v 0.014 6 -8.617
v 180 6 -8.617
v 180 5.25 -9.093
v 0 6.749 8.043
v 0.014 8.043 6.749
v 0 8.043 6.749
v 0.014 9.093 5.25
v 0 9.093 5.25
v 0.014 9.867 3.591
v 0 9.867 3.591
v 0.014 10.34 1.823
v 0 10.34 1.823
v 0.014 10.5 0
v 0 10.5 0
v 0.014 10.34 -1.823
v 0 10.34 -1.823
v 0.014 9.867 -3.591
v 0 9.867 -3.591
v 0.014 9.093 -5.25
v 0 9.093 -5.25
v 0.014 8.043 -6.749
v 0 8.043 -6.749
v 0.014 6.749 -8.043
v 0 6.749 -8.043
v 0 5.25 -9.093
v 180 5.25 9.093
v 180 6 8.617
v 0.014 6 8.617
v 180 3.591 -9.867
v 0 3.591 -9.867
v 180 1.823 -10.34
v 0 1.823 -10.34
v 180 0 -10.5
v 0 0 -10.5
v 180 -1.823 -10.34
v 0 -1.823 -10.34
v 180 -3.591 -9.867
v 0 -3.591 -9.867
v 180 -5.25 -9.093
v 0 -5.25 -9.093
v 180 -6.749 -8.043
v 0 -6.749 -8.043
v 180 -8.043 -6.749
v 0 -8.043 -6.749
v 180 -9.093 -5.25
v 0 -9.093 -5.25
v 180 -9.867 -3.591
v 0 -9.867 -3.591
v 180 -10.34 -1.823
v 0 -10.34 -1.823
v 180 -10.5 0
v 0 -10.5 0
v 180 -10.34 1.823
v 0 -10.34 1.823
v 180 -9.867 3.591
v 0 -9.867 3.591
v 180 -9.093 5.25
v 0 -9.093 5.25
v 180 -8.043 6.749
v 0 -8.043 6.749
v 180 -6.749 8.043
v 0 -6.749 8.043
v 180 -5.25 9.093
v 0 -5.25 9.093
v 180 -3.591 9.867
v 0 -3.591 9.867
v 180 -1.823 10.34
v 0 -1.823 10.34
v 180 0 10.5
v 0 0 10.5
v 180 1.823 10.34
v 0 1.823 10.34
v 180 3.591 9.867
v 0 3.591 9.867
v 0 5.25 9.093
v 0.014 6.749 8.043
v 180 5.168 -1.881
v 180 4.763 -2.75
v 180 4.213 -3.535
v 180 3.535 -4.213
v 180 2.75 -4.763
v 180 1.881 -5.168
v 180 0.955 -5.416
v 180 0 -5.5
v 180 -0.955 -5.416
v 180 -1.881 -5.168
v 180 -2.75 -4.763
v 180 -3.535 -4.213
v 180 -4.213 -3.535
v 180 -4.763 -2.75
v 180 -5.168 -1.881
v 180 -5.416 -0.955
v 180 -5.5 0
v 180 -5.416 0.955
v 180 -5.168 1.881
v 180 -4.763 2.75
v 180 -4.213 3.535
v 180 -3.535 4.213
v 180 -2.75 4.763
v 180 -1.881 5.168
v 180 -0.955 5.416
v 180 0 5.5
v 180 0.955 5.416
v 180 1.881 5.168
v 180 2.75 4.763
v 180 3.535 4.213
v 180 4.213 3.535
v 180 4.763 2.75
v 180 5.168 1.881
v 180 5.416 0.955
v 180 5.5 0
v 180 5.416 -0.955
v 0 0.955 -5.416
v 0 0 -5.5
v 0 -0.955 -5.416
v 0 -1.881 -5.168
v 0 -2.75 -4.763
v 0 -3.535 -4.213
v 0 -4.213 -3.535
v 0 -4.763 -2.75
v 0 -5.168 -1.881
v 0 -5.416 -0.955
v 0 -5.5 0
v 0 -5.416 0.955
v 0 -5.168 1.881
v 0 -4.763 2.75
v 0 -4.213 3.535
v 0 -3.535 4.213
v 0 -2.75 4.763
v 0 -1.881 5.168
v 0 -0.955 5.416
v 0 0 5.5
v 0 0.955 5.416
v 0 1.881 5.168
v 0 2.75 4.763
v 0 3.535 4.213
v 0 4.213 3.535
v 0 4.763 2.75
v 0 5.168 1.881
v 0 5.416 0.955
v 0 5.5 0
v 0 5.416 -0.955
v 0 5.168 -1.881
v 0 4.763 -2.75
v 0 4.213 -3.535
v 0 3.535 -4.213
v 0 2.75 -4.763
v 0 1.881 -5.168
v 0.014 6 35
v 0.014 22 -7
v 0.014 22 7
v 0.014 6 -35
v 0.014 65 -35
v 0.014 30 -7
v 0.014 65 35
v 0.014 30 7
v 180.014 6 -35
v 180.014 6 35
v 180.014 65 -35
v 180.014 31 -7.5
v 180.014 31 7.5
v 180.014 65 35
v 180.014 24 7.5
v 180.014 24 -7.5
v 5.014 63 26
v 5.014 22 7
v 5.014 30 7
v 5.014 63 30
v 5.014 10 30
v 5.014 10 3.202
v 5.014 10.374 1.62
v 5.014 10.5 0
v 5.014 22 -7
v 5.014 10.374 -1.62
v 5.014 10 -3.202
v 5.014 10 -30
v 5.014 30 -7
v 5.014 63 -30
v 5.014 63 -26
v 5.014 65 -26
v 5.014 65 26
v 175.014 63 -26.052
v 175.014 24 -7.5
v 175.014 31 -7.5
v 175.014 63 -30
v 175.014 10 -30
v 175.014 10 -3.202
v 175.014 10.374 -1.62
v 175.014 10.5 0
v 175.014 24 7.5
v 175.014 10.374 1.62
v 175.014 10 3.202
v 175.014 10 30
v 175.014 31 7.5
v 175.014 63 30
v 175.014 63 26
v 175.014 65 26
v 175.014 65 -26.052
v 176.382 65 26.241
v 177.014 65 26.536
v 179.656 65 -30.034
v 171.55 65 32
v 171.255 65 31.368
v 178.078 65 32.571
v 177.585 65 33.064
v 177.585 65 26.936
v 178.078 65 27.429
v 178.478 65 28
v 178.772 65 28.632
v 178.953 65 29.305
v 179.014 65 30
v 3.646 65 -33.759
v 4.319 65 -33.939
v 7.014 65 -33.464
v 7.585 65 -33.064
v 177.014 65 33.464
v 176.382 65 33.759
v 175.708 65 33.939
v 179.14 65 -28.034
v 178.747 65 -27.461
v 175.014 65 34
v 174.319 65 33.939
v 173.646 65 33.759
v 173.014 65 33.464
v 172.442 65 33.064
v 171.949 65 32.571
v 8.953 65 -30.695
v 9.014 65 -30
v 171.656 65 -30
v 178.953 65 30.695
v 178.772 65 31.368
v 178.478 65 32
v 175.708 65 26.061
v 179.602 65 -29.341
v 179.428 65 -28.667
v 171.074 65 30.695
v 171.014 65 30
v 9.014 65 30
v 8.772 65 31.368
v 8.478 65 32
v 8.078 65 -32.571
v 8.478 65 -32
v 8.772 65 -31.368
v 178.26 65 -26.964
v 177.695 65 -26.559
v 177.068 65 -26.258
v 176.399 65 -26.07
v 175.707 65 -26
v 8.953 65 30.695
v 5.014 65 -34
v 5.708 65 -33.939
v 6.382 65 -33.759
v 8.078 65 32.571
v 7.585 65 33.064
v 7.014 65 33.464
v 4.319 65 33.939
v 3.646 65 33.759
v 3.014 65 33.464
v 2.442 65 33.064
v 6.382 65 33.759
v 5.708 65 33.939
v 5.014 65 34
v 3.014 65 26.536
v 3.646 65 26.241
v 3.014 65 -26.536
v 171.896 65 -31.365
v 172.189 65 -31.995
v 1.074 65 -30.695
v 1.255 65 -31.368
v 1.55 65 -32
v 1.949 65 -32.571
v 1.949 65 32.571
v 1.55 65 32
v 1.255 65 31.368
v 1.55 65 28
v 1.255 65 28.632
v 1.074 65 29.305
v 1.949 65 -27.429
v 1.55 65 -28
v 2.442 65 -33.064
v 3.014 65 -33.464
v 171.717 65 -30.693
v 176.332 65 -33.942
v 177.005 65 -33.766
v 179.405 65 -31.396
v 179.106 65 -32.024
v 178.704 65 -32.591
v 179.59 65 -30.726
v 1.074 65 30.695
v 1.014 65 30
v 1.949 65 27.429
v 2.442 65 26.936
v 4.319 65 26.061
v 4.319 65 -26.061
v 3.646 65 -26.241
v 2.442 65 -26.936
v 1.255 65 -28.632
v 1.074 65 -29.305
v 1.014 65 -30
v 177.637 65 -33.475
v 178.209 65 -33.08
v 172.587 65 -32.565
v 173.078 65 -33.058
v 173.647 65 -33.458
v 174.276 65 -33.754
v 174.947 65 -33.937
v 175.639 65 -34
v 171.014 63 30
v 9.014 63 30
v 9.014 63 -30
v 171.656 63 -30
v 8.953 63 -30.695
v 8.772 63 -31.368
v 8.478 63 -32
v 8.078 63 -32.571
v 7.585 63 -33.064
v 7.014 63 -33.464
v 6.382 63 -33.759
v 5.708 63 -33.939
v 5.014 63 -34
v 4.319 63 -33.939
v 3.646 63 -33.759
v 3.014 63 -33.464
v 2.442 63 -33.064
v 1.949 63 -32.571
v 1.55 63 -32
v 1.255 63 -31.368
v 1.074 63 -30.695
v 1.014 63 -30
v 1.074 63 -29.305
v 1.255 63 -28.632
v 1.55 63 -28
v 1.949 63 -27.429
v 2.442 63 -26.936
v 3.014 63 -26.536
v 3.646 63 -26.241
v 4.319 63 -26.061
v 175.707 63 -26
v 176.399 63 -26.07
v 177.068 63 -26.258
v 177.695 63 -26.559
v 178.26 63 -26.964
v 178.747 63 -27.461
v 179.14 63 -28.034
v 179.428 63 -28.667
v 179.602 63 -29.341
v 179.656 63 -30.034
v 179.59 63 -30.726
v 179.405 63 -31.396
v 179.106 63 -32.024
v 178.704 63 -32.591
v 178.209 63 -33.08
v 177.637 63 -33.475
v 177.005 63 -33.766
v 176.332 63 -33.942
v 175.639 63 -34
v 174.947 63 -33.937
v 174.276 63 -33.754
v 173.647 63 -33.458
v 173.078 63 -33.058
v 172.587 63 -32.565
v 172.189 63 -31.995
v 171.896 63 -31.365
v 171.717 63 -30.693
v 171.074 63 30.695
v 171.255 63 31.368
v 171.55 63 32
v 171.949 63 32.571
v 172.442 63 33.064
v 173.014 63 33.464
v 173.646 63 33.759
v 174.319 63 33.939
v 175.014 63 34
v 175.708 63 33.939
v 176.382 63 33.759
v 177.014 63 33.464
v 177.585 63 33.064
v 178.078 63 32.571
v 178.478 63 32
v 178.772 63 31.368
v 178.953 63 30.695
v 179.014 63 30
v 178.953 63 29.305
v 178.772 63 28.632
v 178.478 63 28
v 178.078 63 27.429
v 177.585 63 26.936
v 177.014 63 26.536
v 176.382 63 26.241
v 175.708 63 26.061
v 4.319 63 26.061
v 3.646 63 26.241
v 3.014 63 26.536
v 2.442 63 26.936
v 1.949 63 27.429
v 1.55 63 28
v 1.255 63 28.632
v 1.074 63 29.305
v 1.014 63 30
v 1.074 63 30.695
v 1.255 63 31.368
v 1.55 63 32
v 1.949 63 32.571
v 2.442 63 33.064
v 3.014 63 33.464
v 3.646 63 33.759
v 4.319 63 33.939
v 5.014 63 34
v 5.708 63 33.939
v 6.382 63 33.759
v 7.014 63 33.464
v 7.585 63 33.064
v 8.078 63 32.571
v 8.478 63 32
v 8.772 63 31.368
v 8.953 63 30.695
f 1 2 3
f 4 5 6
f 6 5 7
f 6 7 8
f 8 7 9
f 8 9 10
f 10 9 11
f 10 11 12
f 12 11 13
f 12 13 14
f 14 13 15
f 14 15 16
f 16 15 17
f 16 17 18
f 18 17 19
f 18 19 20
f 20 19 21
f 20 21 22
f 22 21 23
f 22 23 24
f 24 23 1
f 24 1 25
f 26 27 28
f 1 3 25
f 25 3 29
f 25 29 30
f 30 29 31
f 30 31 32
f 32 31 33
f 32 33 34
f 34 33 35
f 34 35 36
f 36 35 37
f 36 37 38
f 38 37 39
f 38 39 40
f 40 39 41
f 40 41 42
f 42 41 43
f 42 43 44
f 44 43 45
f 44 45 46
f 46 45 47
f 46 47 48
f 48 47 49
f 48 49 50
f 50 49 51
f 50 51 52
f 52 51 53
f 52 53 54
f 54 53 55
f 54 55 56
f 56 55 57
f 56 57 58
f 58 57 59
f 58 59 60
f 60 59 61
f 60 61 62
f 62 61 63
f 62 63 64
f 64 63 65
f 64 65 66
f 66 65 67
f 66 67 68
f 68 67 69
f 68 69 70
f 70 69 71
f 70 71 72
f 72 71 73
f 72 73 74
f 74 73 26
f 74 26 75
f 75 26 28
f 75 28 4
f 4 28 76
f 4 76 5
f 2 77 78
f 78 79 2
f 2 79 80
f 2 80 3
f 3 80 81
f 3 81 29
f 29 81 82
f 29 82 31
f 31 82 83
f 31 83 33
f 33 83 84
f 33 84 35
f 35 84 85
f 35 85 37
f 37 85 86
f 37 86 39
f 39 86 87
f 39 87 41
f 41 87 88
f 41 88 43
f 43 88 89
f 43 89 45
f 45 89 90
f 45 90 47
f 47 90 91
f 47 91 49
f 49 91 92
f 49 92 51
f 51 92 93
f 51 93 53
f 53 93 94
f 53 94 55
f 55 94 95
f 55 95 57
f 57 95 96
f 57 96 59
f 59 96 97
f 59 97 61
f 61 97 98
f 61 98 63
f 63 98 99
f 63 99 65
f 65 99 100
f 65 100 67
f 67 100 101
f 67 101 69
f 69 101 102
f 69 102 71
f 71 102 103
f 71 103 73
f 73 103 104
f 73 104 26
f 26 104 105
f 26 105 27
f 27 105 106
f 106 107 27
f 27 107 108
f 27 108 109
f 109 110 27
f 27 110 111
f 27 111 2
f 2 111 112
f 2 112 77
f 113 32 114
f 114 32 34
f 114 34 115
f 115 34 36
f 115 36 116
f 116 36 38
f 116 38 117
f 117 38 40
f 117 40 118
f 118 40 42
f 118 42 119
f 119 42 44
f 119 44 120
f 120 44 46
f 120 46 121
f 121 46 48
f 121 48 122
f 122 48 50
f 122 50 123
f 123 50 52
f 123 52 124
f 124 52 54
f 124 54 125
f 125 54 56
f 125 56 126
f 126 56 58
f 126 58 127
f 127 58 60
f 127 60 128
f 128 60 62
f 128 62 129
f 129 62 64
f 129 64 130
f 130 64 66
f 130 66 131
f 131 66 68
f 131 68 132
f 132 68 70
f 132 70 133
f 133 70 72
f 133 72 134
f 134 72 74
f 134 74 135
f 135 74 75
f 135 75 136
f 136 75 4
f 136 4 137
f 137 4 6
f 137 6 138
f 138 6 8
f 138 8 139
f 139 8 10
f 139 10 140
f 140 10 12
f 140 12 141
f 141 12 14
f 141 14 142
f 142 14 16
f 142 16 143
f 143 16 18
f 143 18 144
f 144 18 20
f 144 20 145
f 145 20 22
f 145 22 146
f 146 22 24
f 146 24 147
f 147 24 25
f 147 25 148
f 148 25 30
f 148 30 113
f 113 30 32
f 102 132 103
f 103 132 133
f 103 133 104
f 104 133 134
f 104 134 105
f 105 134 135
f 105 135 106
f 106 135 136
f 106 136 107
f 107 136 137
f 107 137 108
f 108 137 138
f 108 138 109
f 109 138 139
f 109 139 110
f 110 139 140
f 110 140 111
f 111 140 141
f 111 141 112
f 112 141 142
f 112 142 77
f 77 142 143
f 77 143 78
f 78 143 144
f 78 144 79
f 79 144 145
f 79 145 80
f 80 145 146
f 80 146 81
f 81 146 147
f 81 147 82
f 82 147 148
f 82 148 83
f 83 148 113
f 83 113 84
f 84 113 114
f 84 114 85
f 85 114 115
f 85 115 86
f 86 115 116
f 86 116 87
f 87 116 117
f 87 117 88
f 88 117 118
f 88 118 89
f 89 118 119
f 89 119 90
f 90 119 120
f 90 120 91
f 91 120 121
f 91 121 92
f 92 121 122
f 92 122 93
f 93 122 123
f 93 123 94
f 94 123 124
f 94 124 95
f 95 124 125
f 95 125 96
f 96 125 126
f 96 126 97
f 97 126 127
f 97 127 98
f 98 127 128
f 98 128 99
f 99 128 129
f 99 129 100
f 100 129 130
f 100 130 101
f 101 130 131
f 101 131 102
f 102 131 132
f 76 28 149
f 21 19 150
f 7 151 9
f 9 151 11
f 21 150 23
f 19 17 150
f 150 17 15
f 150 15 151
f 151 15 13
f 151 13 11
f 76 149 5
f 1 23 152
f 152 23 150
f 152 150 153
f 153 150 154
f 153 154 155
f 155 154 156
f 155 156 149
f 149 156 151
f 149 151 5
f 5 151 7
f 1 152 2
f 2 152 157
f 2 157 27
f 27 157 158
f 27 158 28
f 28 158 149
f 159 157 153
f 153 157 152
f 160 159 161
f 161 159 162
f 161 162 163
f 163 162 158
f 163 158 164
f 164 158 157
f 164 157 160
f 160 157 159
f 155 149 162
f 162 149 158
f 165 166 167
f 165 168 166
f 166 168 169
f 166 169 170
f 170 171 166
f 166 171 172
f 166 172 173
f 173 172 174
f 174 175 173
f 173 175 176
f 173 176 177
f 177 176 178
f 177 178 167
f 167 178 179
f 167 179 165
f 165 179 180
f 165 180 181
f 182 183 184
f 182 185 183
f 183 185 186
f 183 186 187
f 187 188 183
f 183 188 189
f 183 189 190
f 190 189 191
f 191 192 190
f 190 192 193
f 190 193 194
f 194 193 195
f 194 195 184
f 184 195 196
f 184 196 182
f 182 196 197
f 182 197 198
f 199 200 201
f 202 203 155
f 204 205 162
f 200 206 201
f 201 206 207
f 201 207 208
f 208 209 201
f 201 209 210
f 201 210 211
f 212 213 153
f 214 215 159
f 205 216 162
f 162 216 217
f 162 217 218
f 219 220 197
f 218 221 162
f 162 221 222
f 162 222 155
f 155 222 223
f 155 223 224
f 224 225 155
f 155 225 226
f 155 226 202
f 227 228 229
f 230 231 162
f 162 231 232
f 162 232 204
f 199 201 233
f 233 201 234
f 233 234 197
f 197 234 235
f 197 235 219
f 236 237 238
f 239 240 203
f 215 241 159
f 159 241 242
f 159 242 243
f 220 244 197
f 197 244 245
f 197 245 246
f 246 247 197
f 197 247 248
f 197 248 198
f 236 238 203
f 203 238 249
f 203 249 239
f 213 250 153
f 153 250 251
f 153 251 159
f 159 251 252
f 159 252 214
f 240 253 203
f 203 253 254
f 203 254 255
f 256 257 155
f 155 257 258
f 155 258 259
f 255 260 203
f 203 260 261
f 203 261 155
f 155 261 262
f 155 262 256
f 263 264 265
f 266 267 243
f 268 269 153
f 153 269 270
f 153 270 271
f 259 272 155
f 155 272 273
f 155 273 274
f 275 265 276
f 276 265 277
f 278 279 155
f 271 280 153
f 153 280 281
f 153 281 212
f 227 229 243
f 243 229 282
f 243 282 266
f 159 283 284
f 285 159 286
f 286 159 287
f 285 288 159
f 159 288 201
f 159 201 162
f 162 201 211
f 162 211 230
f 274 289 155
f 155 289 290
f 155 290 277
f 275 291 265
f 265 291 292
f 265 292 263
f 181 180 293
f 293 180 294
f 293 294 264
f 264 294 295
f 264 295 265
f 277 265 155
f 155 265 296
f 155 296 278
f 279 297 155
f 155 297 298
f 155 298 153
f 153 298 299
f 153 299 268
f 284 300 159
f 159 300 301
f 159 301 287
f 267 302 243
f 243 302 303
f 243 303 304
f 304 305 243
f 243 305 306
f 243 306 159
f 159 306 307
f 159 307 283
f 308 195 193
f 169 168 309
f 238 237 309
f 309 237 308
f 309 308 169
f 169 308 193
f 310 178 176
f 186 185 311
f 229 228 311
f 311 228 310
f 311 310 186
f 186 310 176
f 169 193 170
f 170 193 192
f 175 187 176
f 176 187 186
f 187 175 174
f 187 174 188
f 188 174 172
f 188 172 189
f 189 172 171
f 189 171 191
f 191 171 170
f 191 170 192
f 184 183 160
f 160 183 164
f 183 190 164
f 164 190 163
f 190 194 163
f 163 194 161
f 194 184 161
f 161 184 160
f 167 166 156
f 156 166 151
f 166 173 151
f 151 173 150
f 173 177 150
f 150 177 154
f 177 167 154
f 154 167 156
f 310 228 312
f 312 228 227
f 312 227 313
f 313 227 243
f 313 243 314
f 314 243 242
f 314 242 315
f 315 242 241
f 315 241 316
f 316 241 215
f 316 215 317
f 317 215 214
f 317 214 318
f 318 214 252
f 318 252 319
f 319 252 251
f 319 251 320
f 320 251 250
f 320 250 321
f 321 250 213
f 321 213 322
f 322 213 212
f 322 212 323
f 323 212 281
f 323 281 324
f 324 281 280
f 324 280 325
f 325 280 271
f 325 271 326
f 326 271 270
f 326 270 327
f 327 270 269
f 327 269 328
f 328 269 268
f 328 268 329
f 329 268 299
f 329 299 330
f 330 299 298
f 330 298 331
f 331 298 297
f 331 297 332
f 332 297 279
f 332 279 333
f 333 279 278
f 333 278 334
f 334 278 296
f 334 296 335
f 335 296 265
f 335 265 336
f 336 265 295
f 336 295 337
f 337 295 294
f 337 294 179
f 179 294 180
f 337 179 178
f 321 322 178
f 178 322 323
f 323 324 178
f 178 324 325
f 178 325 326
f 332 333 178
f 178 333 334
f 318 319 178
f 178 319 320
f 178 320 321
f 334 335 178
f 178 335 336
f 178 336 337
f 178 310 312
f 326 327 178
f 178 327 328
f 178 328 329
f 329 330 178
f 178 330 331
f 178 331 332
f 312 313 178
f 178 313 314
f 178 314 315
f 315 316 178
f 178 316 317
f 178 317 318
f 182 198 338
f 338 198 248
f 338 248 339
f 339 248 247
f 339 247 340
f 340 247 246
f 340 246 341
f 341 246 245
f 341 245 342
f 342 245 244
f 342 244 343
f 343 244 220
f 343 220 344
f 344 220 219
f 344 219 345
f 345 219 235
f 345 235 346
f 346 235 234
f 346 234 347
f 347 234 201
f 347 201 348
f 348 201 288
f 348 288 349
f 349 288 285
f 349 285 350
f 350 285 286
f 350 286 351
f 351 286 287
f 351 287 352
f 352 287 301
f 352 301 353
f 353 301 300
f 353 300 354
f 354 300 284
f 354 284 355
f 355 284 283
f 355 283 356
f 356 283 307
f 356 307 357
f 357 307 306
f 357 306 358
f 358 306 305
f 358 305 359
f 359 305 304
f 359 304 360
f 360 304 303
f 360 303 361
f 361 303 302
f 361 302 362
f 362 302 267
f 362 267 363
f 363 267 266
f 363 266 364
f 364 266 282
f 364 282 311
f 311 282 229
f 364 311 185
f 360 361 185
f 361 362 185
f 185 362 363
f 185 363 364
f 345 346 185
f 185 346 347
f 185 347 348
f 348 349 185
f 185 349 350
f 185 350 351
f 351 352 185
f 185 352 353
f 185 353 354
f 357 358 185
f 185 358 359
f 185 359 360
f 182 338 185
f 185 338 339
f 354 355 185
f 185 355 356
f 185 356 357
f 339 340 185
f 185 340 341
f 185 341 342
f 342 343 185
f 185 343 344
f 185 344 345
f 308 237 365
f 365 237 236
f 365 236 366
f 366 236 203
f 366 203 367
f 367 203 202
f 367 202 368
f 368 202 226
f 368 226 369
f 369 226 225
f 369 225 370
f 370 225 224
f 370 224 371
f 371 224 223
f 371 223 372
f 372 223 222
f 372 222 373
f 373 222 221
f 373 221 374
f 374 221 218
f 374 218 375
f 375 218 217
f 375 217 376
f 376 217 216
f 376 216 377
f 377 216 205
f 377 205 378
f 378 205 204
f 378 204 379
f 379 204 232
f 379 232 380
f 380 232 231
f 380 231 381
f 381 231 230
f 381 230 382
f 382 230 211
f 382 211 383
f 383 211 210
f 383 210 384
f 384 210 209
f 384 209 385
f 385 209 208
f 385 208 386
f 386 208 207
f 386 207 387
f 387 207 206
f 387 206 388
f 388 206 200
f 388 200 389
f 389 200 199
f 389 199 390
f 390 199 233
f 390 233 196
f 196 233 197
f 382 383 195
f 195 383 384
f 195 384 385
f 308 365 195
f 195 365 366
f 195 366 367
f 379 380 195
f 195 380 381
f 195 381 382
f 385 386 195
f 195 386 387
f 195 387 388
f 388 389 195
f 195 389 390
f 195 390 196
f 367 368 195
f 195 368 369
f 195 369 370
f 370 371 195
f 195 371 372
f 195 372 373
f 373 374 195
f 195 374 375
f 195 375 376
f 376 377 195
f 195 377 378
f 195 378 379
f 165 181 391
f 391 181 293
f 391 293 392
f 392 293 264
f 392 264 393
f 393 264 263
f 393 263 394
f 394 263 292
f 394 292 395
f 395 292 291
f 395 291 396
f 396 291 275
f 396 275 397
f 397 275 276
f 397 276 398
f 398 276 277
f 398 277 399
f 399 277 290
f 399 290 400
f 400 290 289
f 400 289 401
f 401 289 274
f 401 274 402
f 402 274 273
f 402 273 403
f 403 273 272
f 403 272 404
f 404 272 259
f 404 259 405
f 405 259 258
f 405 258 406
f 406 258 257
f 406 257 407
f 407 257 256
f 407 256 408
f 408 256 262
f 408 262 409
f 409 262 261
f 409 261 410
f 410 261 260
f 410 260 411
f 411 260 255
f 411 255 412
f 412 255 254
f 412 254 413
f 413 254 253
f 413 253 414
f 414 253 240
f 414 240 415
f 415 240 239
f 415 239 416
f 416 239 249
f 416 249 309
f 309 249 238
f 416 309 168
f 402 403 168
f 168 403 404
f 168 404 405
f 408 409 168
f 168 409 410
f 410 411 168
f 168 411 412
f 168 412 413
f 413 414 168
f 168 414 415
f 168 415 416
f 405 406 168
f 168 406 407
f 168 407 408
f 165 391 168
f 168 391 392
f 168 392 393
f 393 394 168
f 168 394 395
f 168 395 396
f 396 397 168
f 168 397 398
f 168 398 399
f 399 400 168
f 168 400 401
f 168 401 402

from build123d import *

# Parameters (mm, degrees)
SKETCH2_R           = 10.5
SKETCH2_R_2         = 5.5
BOSS_EXTRUDE1_DEPTH = 180
SKETCH6_W           = 180
SKETCH6_H           = 70
BOSS_EXTRUDE2_DEPTH = 4
SKETCH8_W           = 180
SKETCH8_H           = 70
SKETCH8_W_2         = 170
SKETCH8_H_2         = 60
BOSS_EXTRUDE3_DEPTH = 55
SKETCH9_W           = 15
SKETCH9_H           = 7
CUT_EXTRUDE1_DEPTH  = 5
SKETCH10_W          = 14
SKETCH10_H          = 8
CUT_EXTRUDE2_DEPTH  = 5
SKETCH11_R          = 4
CUT_EXTRUDE3_DEPTH  = 2


with BuildPart() as part:
    # Sketch2 → Boss-Extrude1 (new body)
    with BuildSketch(Plane(origin=(0, 0, 0), x_dir=(0, 0, -1), z_dir=(1, 0, 0))):
        with Locations(Location((0, 0, 0), (0, 0, 180))):
            Circle(SKETCH2_R)
        with Locations(Location((0, 0, 0), (0, 0, 180))):
            Circle(SKETCH2_R_2, mode=Mode.SUBTRACT)
    extrude(amount=BOSS_EXTRUDE1_DEPTH)

    # Sketch6 → Boss-Extrude2 (add)
    with BuildSketch(Plane(origin=(0, 10, 0), x_dir=(1, 0, 0), z_dir=(0, 1, 0))):
        with Locations((90.013629188, 0)):
            Rectangle(SKETCH6_W, SKETCH6_H)
    extrude(amount=-BOSS_EXTRUDE2_DEPTH)

    # Sketch8 → Boss-Extrude3 (add)
    with BuildSketch(Plane(origin=(0, 10, 0), x_dir=(1, 0, 0), z_dir=(0, 1, 0))):
        with Locations((90.013629188, 0)):
            Rectangle(SKETCH8_W, SKETCH8_H)
        with Locations((90.013629188, 0)):
            Rectangle(SKETCH8_W_2, SKETCH8_H_2, mode=Mode.SUBTRACT)
    extrude(amount=BOSS_EXTRUDE3_DEPTH)

    # Sketch9 → Cut-Extrude1 (cut)
    with BuildSketch(Plane(origin=(180.013629188, 0, 0), x_dir=(0, 0, -1), z_dir=(1, 0, 0))):
        with Locations((0, 27.5)):
            Rectangle(SKETCH9_W, SKETCH9_H)
    extrude(amount=-CUT_EXTRUDE1_DEPTH, mode=Mode.SUBTRACT)

    # Sketch10 → Cut-Extrude2 (cut)
    with BuildSketch(Plane.ZY.offset(-0.013629188)):
        with Locations((0, 26)):
            Rectangle(SKETCH10_W, SKETCH10_H)
    extrude(amount=-CUT_EXTRUDE2_DEPTH, mode=Mode.SUBTRACT)

    # Sketch11 → Cut-Extrude3 (cut)
    with BuildSketch(Plane(origin=(0, 65, 0), x_dir=(1, 0, 0), z_dir=(0, 1, 0))):
        with Locations((5.013629188, 30)):
            Circle(SKETCH11_R)
        with Locations((175.656317999, 30)):
            Circle(SKETCH11_R)
        with Locations((5.013629188, -30)):
            Circle(SKETCH11_R)
        with Locations((175.013629188, -30)):
            Circle(SKETCH11_R)
    extrude(amount=-CUT_EXTRUDE3_DEPTH, mode=Mode.SUBTRACT)


solid = part.part
